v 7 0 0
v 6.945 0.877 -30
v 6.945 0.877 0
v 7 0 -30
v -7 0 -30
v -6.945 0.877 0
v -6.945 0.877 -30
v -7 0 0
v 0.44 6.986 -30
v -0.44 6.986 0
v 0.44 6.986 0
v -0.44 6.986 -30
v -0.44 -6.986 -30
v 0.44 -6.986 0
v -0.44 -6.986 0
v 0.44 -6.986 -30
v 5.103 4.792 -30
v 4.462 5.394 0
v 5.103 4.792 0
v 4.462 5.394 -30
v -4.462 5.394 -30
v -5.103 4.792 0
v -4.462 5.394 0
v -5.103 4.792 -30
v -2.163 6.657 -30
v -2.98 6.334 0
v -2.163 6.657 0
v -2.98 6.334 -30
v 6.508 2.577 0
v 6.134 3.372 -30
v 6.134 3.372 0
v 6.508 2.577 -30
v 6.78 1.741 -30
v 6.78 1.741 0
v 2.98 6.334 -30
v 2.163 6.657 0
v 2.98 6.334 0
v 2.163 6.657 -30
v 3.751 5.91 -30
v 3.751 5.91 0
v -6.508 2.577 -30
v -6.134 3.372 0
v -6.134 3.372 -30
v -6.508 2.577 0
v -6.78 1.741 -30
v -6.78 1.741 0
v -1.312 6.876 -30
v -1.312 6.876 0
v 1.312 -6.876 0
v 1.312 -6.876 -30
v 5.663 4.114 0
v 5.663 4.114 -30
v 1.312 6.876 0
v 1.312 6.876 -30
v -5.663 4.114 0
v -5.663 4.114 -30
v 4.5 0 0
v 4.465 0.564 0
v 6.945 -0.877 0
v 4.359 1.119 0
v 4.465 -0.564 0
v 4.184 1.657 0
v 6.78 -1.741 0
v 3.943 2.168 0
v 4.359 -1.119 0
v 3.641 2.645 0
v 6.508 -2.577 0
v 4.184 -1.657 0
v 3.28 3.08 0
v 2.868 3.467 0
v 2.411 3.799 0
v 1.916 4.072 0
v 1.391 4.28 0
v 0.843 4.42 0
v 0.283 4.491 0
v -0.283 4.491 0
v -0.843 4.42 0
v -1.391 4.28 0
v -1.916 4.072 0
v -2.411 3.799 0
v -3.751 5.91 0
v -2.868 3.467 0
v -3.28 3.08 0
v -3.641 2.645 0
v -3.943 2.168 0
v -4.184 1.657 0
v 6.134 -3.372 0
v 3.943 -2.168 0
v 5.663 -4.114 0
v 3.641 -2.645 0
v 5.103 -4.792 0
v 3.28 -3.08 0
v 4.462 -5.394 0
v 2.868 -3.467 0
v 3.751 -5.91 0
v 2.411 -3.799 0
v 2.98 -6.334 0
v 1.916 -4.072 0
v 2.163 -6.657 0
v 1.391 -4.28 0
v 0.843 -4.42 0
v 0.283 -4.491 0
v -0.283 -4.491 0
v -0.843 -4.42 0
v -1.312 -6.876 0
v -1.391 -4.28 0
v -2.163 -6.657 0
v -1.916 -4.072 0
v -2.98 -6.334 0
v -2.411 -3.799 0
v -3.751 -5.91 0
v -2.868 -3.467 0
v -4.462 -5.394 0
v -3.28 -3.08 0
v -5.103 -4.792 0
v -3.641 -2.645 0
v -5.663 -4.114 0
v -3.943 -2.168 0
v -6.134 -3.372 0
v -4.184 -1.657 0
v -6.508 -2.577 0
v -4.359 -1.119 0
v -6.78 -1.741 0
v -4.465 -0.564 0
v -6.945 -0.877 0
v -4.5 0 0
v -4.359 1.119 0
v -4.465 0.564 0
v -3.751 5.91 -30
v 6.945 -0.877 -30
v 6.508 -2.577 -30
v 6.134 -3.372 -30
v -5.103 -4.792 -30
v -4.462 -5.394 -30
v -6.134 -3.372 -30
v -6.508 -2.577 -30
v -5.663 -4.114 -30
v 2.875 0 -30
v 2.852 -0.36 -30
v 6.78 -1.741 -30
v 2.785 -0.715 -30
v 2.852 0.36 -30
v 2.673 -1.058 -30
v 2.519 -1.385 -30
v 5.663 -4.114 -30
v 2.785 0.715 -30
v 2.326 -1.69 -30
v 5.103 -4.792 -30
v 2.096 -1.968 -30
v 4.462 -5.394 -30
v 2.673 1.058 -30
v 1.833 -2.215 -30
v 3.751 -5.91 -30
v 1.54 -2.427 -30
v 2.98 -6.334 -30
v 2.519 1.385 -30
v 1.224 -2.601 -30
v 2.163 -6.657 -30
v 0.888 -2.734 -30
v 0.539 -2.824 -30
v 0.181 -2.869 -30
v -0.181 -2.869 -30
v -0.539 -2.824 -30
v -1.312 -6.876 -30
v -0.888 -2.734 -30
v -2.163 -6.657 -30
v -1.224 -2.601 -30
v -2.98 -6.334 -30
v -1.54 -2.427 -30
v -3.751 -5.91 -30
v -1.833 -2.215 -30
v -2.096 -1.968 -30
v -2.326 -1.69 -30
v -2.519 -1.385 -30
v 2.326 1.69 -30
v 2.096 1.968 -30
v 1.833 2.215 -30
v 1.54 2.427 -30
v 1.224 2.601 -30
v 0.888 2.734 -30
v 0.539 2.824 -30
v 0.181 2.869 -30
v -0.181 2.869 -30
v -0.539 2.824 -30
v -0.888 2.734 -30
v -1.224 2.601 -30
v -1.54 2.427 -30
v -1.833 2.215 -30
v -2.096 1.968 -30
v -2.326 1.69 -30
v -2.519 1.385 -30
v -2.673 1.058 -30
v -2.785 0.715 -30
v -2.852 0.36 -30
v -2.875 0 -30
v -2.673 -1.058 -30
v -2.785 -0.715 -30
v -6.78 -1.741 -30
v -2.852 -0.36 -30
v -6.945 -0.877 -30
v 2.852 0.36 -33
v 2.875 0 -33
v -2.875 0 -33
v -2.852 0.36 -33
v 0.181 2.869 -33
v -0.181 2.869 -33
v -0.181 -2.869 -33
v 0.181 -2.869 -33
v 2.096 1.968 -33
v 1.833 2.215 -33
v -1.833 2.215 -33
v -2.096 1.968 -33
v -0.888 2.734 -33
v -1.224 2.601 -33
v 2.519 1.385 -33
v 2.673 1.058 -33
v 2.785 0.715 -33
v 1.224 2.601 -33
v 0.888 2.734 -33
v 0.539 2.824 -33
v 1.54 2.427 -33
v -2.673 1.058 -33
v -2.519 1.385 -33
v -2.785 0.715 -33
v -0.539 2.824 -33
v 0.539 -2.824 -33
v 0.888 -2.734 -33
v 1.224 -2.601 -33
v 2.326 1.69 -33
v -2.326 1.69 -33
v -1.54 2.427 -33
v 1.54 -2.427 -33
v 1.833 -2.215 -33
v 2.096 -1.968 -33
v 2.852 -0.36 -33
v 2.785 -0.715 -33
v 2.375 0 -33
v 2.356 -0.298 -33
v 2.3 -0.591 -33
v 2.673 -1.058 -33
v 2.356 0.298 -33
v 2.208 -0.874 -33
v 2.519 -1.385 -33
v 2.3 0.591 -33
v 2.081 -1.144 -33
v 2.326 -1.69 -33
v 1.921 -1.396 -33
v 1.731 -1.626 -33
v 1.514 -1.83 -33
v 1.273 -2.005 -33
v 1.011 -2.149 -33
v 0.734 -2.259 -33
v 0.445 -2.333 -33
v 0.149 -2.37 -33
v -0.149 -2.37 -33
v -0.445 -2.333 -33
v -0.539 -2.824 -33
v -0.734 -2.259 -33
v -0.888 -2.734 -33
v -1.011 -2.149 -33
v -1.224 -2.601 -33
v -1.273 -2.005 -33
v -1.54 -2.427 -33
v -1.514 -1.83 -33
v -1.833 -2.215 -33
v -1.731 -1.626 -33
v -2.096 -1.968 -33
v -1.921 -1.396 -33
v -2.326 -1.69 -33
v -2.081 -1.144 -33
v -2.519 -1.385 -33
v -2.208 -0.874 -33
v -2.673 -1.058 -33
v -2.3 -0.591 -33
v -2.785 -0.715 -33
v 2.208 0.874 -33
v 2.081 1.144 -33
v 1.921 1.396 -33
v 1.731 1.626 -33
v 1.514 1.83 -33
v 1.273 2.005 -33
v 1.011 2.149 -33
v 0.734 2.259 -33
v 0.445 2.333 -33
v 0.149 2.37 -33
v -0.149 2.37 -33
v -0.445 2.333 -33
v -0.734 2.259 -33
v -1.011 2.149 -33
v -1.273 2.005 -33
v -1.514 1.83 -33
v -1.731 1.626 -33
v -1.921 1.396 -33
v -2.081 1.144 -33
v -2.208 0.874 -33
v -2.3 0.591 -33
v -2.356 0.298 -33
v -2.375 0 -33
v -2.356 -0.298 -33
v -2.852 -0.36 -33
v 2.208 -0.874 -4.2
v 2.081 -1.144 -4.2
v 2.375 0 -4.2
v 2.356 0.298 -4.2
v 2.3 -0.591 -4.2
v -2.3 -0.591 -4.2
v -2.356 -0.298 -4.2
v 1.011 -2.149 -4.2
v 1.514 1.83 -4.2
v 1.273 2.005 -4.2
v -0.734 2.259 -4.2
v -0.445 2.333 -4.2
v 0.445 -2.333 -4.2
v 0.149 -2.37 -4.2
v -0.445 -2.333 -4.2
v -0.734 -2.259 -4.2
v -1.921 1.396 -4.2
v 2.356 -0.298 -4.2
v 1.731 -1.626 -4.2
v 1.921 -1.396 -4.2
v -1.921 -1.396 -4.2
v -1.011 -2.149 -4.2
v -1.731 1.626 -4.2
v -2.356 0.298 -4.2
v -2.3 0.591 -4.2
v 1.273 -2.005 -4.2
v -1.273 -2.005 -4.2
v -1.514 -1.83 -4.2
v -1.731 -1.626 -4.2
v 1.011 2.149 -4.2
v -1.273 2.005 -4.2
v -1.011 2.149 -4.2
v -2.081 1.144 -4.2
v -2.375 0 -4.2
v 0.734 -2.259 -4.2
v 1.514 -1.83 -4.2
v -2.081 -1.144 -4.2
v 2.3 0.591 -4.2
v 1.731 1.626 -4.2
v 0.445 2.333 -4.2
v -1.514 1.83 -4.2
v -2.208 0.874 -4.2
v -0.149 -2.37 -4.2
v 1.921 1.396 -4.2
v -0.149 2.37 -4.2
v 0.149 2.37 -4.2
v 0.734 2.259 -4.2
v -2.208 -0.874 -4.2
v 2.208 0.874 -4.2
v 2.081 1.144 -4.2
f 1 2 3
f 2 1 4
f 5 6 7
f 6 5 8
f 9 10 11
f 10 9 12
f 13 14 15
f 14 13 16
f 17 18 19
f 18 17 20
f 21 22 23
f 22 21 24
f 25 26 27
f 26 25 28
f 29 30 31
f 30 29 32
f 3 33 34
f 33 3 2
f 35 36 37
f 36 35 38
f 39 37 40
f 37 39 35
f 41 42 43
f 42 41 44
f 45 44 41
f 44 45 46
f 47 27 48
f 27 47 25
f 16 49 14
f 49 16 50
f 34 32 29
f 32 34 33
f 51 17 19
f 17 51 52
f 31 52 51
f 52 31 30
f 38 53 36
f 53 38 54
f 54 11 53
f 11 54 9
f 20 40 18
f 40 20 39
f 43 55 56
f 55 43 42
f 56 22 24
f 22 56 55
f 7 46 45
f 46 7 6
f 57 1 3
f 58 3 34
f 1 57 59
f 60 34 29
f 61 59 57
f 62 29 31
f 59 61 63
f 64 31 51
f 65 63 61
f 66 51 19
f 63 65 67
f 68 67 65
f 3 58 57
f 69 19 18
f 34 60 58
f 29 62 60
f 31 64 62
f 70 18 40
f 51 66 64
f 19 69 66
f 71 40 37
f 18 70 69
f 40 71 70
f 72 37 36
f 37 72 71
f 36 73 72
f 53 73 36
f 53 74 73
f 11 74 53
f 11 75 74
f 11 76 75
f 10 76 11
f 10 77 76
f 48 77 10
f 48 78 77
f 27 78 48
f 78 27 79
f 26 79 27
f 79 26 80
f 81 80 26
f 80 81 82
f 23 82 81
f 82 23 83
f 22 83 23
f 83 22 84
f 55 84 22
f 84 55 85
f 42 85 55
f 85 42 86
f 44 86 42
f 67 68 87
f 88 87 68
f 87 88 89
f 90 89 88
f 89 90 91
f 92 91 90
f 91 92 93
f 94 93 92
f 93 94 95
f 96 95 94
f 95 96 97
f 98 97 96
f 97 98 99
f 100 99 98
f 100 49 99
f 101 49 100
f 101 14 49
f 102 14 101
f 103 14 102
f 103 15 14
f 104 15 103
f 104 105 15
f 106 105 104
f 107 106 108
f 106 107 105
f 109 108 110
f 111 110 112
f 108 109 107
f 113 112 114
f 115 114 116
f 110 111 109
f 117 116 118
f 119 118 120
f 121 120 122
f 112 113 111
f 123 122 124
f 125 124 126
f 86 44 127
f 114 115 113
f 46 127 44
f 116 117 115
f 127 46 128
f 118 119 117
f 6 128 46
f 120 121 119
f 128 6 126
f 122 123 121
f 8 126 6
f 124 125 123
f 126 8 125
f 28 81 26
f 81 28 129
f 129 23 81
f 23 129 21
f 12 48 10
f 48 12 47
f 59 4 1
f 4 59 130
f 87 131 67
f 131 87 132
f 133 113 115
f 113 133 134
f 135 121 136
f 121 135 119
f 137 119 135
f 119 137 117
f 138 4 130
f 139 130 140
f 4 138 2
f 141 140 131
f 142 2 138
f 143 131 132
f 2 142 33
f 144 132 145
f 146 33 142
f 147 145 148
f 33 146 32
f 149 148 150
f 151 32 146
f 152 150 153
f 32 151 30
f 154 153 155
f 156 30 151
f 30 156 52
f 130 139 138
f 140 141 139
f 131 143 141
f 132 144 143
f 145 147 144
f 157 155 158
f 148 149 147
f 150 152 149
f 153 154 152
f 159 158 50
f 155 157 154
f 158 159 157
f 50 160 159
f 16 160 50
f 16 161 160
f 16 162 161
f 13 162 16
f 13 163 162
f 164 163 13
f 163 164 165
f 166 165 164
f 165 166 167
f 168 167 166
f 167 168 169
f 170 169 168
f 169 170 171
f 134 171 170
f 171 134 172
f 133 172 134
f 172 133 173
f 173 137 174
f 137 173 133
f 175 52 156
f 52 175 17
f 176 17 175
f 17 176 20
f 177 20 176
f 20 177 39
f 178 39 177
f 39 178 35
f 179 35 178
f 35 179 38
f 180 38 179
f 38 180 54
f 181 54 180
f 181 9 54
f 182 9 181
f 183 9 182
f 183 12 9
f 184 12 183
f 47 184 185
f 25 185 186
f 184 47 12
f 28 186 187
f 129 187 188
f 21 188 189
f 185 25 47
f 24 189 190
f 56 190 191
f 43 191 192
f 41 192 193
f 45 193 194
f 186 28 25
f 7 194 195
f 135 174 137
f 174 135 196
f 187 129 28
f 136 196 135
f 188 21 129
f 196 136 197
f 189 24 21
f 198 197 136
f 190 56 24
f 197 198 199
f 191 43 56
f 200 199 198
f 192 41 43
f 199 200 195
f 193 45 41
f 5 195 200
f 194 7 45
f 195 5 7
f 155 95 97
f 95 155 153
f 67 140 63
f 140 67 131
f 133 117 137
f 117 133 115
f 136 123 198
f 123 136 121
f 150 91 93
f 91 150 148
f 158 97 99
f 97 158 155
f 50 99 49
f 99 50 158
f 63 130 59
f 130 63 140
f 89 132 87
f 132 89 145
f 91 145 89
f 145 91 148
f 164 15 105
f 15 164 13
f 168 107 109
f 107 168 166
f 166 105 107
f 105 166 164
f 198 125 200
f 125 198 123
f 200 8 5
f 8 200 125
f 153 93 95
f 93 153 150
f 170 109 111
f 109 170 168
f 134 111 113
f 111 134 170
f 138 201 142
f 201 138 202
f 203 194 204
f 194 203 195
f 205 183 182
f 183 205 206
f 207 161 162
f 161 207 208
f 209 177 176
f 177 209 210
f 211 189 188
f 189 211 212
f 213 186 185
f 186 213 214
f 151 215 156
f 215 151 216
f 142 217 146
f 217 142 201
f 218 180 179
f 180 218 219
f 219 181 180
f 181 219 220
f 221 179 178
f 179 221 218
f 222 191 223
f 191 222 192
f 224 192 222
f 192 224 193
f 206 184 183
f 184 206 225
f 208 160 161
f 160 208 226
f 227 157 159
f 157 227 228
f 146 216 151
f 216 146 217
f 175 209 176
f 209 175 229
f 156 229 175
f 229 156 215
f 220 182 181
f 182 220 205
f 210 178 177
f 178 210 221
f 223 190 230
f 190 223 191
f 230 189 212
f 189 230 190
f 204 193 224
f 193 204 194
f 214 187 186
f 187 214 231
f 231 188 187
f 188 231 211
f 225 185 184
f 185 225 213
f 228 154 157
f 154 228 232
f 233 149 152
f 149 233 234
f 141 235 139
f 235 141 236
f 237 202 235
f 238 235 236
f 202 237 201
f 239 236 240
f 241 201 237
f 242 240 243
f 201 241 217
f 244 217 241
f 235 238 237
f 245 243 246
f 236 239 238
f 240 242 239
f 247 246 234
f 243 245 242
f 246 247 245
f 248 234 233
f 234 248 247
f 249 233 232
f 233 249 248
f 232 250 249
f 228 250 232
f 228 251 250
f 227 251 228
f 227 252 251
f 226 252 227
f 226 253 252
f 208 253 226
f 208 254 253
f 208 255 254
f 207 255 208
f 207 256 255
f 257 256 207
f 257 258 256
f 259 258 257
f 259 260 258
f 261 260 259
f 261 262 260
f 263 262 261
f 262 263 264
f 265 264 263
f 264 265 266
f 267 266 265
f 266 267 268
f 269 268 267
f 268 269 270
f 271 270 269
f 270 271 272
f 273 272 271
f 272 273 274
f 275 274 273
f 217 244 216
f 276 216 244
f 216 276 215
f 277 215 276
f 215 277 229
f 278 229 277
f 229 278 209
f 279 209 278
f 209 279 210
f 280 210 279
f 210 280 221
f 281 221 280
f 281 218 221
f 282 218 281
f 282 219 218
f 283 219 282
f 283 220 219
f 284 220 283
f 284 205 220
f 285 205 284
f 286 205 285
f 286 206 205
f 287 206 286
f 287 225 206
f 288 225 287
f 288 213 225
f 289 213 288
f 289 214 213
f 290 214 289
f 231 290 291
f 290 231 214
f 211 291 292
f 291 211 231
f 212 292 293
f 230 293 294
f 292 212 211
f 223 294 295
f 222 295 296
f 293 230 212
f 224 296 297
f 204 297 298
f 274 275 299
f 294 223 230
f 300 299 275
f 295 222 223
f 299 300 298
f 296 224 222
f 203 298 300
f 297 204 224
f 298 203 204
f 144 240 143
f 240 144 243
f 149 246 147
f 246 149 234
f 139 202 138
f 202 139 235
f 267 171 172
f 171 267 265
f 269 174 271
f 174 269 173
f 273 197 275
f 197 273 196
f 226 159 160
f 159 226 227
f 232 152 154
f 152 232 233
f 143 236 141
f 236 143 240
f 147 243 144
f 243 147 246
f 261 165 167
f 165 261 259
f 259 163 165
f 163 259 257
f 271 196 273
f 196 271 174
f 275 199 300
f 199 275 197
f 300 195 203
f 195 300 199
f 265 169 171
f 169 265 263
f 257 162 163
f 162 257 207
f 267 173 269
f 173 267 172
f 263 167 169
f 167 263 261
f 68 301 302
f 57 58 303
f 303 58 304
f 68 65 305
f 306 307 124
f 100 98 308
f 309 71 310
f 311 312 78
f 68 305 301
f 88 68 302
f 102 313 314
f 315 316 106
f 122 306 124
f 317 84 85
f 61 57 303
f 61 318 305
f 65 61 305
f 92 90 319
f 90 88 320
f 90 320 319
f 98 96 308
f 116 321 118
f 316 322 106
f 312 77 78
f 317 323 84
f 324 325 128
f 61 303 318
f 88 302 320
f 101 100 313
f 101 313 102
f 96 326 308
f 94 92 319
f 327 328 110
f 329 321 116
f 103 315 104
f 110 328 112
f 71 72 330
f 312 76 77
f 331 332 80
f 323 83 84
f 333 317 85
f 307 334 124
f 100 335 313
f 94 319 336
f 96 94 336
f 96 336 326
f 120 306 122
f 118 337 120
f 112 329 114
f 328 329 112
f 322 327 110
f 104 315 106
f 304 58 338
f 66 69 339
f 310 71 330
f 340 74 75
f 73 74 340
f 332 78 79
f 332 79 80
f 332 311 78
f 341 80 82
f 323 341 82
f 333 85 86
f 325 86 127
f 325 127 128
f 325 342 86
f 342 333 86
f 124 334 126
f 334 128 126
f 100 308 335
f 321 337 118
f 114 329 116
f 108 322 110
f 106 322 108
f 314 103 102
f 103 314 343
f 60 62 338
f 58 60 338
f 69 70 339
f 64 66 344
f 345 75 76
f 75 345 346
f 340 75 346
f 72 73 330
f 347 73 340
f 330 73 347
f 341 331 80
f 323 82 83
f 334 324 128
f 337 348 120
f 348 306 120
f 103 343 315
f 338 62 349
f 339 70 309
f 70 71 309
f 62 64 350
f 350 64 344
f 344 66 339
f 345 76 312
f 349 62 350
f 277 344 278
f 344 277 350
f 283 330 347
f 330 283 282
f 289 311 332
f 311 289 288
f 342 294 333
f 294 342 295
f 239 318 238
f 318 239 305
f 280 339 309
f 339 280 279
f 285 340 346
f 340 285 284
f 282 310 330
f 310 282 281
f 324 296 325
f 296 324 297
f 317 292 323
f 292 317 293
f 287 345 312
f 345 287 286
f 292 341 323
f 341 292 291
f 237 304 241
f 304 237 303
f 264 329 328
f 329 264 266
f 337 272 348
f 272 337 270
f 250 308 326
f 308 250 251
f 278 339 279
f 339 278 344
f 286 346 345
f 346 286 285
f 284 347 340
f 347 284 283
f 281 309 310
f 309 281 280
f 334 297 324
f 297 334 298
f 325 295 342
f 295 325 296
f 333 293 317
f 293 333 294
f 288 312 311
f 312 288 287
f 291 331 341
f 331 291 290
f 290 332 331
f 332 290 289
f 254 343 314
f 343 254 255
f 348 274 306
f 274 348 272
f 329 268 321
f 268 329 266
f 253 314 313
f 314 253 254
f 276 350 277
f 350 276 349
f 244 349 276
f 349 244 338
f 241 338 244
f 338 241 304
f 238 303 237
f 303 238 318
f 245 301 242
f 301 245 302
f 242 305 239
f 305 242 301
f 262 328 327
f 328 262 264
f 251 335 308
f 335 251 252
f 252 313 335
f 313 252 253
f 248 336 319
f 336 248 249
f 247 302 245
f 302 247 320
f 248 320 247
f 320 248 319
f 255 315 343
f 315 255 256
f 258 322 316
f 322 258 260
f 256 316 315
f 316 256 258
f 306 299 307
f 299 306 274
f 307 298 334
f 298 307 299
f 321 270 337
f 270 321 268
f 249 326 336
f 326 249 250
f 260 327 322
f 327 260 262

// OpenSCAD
$fn = 50;

difference() {
	union() {
		translate(v = [0, 0, -30.0]) {
			cylinder(h = 30, r = 7.0);
		}
		#translate(v = [0, 0, -33.0]) {
			cylinder(h = 33, r = 2.875);
		}
	}
	union() {
		translate(v = [0, 0, 0]) {
			rotate(a = [0, 0, 0]) {
				difference() {
					union() {
						translate(v = [0, 0, -33.0]) {
							cylinder(h = 33, r = 2.25);
						}
						translate(v = [0, 0, -4.2]) {
							cylinder(h = 4.2, r1 = 2.375, r2 = 4.5);
						}
						translate(v = [0, 0, -33.0]) {
							cylinder(h = 33, r = 2.375);
						}
						translate(v = [0, 0, -33.0]) {
							cylinder(h = 33, r = 2.25);
						}
					}
					union();
				}
			}
		}
	}
}
